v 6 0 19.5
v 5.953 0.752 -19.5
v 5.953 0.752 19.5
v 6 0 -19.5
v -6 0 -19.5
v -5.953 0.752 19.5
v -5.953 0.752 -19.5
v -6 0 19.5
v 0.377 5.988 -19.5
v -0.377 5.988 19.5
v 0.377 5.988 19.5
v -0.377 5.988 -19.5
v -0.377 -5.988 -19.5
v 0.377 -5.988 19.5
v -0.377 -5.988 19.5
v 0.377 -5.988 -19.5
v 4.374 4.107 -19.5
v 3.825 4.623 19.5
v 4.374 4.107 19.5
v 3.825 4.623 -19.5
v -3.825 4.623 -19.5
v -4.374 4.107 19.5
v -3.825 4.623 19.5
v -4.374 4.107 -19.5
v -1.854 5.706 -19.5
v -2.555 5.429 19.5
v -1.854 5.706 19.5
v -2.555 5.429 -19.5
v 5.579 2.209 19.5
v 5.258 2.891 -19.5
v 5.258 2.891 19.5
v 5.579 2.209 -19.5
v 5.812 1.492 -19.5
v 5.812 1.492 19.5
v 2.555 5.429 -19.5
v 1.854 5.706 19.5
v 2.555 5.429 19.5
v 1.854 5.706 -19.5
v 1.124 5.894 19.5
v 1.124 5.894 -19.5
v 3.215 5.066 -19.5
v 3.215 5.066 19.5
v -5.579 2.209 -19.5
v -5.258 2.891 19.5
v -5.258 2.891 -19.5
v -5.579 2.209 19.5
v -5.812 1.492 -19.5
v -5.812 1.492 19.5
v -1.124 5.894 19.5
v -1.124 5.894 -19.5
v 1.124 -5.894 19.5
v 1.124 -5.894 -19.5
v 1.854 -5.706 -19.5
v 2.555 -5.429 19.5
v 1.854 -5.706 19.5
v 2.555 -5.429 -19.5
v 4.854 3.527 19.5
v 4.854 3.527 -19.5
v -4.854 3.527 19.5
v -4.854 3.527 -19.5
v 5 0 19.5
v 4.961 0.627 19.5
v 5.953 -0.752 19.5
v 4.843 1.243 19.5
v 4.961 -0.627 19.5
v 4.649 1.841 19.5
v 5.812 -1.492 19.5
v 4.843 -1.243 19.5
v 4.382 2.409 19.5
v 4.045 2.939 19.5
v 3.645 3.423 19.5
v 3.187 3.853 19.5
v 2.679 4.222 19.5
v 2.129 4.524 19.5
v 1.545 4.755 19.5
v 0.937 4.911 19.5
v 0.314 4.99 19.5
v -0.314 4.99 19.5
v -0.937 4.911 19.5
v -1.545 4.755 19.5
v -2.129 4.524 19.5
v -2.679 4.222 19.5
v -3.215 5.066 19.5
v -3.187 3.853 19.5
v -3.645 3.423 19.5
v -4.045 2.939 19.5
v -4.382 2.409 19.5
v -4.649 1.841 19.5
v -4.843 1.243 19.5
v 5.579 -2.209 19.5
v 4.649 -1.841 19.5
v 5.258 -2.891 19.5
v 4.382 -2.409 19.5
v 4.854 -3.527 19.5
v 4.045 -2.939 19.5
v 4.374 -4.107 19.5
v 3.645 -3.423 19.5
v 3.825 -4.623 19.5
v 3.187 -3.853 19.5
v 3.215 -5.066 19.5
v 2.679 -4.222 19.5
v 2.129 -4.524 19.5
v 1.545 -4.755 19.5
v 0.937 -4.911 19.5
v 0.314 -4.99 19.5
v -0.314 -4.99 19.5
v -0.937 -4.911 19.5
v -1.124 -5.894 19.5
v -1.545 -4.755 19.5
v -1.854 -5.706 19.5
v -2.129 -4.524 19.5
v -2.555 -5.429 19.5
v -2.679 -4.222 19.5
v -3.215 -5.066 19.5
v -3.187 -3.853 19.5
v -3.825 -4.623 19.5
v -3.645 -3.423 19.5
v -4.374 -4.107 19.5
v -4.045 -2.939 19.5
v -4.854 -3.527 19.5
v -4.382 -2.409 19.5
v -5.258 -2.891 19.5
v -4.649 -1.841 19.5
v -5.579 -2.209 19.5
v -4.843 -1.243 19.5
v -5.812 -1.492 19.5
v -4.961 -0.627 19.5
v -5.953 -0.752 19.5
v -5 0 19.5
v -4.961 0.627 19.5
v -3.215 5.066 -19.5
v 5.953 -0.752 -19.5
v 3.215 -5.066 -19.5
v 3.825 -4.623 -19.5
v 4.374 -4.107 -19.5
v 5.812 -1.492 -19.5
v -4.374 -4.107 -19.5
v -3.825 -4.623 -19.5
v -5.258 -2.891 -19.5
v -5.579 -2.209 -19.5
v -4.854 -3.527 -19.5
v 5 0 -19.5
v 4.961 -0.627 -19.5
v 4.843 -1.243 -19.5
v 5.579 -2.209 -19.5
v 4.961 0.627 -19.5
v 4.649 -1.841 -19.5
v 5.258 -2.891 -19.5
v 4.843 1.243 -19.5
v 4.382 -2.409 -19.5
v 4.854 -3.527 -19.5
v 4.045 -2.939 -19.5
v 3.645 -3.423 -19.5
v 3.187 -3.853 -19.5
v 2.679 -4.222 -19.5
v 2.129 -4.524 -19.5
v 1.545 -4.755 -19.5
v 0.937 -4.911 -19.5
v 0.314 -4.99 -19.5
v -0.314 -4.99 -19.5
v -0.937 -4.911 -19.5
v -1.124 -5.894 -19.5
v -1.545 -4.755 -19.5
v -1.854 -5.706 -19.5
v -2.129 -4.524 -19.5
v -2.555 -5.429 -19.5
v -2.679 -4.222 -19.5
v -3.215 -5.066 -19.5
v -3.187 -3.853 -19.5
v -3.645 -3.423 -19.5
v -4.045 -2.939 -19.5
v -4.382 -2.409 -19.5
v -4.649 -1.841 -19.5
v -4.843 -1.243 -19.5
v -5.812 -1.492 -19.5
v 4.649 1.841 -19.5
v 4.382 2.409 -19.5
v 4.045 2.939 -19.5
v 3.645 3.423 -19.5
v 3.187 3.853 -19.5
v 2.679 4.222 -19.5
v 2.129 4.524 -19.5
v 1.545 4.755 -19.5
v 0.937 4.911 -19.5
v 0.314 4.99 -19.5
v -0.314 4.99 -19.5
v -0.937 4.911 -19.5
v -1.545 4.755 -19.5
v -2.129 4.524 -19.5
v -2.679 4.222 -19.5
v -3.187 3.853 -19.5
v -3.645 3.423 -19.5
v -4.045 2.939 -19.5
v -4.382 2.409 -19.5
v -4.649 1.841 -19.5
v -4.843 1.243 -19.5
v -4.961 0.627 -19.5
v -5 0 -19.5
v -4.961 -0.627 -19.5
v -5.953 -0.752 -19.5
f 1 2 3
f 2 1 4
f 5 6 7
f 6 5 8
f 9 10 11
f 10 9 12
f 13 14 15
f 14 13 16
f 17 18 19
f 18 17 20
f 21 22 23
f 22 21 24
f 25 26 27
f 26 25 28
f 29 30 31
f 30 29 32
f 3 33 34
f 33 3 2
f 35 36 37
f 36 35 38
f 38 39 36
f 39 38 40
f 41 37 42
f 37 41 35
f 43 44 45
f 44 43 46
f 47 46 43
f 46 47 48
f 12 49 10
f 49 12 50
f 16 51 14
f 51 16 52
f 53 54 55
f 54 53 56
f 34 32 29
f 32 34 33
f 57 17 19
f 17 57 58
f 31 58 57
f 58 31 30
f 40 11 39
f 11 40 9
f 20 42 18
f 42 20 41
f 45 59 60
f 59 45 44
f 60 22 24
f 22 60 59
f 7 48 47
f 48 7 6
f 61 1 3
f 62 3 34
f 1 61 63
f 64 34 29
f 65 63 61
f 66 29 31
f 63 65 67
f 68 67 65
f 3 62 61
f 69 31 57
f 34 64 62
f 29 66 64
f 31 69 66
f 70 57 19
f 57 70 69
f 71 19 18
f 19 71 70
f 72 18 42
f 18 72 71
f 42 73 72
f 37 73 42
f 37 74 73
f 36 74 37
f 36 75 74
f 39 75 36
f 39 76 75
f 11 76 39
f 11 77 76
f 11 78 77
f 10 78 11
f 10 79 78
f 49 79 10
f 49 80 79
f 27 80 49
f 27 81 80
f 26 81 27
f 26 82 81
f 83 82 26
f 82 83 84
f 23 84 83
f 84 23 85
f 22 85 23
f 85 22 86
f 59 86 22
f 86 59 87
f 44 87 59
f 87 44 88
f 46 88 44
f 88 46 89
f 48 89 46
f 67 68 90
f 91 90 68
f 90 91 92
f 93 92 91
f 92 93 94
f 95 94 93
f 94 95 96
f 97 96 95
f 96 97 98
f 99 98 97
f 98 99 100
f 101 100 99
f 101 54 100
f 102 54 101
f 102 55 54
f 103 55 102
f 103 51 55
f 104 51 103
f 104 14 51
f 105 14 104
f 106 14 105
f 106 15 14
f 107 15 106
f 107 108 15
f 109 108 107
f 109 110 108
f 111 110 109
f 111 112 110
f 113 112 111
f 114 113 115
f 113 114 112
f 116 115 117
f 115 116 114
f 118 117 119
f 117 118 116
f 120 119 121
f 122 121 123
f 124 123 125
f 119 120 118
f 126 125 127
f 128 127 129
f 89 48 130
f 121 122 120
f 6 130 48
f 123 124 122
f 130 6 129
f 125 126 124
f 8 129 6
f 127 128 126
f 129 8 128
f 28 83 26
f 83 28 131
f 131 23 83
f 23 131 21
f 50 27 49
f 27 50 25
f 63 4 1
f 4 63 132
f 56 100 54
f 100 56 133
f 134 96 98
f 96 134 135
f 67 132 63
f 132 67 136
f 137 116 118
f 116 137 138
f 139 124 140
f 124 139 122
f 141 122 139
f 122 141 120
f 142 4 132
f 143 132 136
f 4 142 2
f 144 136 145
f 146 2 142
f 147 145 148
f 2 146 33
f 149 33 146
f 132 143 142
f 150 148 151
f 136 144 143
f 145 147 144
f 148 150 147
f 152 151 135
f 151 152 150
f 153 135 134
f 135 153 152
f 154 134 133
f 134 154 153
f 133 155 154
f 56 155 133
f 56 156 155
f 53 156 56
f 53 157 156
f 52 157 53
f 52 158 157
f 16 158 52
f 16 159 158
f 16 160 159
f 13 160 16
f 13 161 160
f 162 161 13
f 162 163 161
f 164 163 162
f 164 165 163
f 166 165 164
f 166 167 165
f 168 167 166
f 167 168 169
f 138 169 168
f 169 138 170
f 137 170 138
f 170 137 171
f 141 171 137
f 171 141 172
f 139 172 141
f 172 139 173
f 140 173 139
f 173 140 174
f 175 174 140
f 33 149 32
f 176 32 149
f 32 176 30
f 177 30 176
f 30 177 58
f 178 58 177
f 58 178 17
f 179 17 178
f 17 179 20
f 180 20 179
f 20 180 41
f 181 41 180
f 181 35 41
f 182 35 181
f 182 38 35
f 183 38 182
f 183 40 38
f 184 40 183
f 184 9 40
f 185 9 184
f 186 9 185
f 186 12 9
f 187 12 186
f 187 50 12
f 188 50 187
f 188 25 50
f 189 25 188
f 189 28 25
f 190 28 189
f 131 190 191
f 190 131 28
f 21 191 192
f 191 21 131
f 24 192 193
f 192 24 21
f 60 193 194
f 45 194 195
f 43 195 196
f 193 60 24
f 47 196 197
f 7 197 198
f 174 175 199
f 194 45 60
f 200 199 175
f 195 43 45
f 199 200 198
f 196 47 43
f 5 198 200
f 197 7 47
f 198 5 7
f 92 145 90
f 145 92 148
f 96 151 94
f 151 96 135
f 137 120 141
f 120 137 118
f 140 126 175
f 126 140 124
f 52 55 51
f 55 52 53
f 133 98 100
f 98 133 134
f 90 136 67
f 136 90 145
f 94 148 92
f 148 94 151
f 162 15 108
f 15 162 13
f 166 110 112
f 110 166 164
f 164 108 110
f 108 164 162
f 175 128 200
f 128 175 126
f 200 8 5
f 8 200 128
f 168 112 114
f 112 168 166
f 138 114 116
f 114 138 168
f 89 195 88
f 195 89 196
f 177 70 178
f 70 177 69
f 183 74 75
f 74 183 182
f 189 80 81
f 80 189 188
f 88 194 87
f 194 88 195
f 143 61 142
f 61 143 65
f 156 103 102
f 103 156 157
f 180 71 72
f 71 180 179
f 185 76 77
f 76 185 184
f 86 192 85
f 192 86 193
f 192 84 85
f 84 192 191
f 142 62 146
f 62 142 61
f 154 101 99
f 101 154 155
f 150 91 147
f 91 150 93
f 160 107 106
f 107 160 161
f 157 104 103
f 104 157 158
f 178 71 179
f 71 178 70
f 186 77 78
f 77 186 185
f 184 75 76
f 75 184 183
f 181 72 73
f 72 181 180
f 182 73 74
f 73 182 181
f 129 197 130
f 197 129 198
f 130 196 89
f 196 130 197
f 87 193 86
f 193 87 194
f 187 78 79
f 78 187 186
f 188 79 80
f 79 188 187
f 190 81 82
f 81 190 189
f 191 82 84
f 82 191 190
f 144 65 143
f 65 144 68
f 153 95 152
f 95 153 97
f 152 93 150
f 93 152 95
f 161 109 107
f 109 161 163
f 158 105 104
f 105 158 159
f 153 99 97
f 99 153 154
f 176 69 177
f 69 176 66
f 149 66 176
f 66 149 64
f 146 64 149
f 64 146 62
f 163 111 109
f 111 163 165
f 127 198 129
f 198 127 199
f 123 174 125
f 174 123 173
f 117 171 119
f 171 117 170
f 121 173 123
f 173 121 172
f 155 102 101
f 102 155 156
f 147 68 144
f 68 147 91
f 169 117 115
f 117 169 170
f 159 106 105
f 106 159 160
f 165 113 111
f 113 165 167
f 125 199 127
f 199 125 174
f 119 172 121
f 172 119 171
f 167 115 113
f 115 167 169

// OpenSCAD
$fn = 50;


difference() {
	union() {
		translate(v = [0, 0, -19.5000000000]) {
			cylinder(h = 39, r = 6.0000000000);
		}
	}
	union() {
		translate(v = [0, 0, -100.0000000000]) {
			cylinder(h = 200, r = 5);
		}
	}
}
